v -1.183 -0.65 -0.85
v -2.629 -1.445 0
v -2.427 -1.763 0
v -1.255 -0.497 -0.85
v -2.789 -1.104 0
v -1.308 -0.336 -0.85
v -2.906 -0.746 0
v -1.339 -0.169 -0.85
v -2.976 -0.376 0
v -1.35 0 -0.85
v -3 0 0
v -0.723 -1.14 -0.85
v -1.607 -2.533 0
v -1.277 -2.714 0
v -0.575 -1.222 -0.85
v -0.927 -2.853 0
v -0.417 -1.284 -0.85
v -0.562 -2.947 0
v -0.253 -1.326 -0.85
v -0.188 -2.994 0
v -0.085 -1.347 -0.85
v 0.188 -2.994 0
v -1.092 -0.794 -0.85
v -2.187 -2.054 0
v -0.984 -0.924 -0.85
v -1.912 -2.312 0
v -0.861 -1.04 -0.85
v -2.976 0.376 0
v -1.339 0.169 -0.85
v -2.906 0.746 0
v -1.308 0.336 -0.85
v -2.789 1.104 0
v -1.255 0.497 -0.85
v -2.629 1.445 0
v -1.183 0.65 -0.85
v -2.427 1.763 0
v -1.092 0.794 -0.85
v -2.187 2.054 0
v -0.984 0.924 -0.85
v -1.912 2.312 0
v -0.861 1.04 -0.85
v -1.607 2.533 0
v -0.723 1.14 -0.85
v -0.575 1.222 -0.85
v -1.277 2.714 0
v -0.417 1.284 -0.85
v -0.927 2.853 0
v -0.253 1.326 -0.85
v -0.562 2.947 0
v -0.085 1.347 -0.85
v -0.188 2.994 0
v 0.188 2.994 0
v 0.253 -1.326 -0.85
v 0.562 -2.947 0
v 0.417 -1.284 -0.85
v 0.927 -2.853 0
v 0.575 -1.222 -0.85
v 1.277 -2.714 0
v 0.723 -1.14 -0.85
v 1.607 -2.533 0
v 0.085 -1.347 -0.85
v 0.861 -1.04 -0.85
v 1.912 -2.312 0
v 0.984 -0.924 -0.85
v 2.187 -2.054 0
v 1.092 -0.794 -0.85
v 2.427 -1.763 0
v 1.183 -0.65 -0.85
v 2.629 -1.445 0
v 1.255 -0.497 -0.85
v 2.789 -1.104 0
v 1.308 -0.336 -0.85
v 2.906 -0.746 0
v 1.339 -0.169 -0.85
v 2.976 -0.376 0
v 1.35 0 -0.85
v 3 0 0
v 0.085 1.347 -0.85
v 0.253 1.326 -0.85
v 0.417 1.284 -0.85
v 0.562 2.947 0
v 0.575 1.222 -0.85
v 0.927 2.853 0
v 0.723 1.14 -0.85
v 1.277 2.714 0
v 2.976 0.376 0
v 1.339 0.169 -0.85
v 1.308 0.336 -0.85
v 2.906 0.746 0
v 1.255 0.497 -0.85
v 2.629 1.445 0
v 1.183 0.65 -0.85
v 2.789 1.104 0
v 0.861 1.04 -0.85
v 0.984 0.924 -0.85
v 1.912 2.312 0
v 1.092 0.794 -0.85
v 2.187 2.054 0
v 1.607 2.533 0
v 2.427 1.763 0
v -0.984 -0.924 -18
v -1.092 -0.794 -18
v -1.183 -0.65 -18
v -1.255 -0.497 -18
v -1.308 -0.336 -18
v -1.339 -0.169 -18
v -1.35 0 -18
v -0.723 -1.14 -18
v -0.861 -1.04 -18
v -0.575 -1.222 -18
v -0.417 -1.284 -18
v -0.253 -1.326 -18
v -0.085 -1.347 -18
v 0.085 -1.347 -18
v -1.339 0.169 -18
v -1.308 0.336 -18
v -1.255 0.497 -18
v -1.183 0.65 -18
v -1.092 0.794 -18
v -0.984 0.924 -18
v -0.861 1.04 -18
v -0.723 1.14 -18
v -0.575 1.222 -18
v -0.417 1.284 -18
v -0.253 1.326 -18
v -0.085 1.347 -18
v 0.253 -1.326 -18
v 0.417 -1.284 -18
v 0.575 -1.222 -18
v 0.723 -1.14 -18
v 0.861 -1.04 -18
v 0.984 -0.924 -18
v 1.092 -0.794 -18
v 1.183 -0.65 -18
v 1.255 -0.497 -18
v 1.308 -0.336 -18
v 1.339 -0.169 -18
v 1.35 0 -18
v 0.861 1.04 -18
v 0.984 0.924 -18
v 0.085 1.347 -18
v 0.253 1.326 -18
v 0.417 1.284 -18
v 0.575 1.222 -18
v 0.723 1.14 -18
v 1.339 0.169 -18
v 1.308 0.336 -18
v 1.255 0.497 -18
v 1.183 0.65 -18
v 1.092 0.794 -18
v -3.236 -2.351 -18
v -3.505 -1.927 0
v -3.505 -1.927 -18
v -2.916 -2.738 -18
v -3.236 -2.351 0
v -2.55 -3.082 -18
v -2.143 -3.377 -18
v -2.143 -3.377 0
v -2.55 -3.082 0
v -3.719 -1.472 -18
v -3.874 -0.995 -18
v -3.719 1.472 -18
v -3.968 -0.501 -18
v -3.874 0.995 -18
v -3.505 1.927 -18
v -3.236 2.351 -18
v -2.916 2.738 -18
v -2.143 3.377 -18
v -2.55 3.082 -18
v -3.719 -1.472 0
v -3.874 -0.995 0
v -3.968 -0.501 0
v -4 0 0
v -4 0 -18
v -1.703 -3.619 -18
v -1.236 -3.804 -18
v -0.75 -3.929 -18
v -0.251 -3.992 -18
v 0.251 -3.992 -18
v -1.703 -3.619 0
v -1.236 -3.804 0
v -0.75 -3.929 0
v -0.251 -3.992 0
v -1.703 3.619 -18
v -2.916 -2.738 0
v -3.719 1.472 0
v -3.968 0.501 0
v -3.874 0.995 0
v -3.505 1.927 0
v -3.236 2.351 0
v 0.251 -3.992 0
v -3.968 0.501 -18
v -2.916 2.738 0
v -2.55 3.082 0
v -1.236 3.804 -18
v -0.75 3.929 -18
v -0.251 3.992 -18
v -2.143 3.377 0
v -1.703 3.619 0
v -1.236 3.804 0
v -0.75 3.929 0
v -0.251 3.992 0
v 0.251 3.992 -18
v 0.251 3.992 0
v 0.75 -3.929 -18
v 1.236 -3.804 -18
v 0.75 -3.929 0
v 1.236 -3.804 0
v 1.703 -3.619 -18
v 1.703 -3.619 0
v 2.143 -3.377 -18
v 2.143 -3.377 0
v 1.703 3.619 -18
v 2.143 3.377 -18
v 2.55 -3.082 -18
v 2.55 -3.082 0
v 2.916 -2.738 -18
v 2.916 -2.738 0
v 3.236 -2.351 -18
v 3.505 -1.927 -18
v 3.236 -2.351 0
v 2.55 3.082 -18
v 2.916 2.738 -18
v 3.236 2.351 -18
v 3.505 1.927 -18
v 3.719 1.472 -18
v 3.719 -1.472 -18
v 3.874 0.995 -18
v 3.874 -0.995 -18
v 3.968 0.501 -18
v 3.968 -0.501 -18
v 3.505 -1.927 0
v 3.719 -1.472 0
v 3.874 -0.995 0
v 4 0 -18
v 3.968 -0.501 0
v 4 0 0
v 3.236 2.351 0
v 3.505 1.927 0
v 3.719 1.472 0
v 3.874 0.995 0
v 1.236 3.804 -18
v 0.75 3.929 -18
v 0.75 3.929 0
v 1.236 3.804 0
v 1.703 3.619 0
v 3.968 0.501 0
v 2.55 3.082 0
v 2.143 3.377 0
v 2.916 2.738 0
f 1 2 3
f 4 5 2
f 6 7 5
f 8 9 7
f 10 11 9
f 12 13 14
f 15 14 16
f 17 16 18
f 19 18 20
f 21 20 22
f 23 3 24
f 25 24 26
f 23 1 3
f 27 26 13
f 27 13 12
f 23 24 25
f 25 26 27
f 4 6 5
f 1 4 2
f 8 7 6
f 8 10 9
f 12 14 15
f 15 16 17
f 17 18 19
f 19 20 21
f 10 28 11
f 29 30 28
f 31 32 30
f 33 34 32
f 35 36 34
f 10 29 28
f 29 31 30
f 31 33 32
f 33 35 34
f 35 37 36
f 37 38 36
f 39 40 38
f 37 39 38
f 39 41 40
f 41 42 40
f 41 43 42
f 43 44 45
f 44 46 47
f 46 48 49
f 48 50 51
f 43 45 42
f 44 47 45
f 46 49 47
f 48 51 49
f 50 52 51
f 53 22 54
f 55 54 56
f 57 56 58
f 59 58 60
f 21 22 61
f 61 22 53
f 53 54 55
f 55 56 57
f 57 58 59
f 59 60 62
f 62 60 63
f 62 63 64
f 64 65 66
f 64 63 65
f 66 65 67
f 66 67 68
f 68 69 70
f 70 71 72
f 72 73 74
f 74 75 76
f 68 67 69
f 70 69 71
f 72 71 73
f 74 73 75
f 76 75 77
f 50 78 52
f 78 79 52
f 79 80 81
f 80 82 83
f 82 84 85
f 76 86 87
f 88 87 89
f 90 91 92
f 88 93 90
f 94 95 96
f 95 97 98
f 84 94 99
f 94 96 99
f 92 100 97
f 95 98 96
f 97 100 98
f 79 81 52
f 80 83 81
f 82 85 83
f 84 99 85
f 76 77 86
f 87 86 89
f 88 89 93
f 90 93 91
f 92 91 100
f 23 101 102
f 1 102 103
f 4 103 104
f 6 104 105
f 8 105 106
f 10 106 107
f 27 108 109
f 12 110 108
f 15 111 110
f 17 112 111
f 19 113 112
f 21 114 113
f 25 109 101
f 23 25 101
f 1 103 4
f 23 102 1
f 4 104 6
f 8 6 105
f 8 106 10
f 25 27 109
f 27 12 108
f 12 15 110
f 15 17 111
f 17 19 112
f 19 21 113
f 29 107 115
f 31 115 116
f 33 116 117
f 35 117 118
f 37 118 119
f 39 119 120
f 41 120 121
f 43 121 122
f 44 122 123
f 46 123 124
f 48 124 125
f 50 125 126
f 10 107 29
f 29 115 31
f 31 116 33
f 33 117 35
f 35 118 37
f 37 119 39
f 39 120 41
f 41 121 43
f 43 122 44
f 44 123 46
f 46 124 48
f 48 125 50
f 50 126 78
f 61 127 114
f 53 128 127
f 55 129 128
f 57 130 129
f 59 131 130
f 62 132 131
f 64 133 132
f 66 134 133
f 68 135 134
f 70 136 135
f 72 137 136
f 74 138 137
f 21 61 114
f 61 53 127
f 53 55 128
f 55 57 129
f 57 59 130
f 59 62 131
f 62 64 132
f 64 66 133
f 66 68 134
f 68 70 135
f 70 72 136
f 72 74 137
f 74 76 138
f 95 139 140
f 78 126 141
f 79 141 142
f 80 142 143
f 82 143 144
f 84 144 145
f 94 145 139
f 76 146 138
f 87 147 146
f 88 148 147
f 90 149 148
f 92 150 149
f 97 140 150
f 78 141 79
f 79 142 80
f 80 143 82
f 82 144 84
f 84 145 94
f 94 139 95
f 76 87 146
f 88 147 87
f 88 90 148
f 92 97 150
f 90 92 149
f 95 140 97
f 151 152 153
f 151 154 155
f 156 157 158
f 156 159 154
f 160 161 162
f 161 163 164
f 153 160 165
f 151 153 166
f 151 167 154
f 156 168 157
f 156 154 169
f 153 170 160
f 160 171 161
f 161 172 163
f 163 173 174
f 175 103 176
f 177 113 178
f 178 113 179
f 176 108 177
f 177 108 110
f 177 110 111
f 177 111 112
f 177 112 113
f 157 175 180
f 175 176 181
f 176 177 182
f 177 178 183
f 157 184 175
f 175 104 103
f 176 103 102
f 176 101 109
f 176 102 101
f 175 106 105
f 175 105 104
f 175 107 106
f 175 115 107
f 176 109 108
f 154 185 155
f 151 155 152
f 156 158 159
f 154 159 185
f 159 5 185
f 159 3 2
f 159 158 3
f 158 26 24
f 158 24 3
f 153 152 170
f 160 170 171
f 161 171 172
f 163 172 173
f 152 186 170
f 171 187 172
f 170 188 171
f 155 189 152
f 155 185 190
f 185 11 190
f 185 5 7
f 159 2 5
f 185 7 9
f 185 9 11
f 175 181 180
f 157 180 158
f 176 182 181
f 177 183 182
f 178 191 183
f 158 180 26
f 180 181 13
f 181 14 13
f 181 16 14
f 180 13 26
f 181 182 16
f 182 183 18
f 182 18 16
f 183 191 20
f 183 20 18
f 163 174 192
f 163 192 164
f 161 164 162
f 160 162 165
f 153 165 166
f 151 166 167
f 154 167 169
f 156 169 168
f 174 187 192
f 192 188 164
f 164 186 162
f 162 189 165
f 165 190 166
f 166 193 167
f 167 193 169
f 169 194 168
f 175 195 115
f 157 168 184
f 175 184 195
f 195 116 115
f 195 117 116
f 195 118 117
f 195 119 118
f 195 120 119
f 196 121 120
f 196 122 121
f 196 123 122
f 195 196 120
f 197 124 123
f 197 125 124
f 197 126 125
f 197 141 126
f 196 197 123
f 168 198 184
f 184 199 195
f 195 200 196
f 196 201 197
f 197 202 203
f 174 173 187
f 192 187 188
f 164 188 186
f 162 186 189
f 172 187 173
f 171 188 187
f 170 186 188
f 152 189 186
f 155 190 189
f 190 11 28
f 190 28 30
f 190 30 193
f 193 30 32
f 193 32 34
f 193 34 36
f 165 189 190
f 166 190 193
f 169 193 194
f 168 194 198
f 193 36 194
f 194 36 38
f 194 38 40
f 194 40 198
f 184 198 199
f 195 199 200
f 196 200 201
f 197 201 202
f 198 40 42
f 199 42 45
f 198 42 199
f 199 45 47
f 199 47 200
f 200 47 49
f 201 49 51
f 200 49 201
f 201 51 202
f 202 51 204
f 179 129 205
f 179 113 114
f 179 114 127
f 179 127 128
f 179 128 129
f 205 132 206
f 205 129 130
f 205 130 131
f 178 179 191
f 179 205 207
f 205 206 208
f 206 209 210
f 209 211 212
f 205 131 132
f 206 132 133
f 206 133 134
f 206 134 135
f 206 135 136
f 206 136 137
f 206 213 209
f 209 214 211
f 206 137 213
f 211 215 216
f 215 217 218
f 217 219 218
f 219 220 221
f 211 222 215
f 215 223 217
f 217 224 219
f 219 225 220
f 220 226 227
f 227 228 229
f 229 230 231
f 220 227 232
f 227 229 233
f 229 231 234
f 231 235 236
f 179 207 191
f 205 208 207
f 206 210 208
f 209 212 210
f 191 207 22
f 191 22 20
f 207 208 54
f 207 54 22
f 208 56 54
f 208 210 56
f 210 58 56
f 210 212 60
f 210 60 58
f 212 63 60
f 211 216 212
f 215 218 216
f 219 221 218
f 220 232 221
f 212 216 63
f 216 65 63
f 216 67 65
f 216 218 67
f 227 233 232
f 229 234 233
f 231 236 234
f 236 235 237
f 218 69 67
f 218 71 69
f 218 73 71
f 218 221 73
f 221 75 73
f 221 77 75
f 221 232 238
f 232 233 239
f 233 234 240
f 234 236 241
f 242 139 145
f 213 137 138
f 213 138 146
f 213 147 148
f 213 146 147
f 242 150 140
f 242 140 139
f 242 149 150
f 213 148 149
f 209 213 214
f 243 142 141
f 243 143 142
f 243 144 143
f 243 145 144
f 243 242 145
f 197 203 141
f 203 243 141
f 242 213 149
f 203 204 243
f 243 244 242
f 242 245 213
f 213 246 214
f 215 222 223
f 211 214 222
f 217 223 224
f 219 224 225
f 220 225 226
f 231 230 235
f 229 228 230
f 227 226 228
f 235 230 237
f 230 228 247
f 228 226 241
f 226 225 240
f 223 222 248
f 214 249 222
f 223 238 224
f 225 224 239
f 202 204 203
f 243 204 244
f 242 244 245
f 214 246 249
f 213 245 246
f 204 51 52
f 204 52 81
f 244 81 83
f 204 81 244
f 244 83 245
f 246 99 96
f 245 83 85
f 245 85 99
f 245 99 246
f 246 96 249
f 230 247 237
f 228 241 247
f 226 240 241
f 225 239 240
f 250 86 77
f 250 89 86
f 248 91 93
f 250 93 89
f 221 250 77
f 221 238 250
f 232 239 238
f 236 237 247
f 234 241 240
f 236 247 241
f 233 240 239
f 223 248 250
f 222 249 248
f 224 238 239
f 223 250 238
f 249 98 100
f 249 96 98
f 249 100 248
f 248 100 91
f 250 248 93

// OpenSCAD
$fn = 50;

difference() {
	union() {
		translate(v = [0, 0, -18.0]) {
			cylinder(h = 18, r = 4.0);
		}
	}
	union() {
		translate(v = [0, 0, 0]) {
			rotate(a = [0, 0, 0]) {
				difference() {
					union() {
						translate(v = [0, 0, -21.0]) {
							cylinder(h = 21, r = 1.0);
						}
						translate(v = [0, 0, -0.85]) {
							cylinder(h = 0.85, r1 = 1.35, r2 = 3.0);
						}
						translate(v = [0, 0, -21.0]) {
							cylinder(h = 21, r = 1.35);
						}
						translate(v = [0, 0, -21.0]) {
							cylinder(h = 21, r = 1.0);
						}
					}
					union();
				}
			}
		}
	}
}
